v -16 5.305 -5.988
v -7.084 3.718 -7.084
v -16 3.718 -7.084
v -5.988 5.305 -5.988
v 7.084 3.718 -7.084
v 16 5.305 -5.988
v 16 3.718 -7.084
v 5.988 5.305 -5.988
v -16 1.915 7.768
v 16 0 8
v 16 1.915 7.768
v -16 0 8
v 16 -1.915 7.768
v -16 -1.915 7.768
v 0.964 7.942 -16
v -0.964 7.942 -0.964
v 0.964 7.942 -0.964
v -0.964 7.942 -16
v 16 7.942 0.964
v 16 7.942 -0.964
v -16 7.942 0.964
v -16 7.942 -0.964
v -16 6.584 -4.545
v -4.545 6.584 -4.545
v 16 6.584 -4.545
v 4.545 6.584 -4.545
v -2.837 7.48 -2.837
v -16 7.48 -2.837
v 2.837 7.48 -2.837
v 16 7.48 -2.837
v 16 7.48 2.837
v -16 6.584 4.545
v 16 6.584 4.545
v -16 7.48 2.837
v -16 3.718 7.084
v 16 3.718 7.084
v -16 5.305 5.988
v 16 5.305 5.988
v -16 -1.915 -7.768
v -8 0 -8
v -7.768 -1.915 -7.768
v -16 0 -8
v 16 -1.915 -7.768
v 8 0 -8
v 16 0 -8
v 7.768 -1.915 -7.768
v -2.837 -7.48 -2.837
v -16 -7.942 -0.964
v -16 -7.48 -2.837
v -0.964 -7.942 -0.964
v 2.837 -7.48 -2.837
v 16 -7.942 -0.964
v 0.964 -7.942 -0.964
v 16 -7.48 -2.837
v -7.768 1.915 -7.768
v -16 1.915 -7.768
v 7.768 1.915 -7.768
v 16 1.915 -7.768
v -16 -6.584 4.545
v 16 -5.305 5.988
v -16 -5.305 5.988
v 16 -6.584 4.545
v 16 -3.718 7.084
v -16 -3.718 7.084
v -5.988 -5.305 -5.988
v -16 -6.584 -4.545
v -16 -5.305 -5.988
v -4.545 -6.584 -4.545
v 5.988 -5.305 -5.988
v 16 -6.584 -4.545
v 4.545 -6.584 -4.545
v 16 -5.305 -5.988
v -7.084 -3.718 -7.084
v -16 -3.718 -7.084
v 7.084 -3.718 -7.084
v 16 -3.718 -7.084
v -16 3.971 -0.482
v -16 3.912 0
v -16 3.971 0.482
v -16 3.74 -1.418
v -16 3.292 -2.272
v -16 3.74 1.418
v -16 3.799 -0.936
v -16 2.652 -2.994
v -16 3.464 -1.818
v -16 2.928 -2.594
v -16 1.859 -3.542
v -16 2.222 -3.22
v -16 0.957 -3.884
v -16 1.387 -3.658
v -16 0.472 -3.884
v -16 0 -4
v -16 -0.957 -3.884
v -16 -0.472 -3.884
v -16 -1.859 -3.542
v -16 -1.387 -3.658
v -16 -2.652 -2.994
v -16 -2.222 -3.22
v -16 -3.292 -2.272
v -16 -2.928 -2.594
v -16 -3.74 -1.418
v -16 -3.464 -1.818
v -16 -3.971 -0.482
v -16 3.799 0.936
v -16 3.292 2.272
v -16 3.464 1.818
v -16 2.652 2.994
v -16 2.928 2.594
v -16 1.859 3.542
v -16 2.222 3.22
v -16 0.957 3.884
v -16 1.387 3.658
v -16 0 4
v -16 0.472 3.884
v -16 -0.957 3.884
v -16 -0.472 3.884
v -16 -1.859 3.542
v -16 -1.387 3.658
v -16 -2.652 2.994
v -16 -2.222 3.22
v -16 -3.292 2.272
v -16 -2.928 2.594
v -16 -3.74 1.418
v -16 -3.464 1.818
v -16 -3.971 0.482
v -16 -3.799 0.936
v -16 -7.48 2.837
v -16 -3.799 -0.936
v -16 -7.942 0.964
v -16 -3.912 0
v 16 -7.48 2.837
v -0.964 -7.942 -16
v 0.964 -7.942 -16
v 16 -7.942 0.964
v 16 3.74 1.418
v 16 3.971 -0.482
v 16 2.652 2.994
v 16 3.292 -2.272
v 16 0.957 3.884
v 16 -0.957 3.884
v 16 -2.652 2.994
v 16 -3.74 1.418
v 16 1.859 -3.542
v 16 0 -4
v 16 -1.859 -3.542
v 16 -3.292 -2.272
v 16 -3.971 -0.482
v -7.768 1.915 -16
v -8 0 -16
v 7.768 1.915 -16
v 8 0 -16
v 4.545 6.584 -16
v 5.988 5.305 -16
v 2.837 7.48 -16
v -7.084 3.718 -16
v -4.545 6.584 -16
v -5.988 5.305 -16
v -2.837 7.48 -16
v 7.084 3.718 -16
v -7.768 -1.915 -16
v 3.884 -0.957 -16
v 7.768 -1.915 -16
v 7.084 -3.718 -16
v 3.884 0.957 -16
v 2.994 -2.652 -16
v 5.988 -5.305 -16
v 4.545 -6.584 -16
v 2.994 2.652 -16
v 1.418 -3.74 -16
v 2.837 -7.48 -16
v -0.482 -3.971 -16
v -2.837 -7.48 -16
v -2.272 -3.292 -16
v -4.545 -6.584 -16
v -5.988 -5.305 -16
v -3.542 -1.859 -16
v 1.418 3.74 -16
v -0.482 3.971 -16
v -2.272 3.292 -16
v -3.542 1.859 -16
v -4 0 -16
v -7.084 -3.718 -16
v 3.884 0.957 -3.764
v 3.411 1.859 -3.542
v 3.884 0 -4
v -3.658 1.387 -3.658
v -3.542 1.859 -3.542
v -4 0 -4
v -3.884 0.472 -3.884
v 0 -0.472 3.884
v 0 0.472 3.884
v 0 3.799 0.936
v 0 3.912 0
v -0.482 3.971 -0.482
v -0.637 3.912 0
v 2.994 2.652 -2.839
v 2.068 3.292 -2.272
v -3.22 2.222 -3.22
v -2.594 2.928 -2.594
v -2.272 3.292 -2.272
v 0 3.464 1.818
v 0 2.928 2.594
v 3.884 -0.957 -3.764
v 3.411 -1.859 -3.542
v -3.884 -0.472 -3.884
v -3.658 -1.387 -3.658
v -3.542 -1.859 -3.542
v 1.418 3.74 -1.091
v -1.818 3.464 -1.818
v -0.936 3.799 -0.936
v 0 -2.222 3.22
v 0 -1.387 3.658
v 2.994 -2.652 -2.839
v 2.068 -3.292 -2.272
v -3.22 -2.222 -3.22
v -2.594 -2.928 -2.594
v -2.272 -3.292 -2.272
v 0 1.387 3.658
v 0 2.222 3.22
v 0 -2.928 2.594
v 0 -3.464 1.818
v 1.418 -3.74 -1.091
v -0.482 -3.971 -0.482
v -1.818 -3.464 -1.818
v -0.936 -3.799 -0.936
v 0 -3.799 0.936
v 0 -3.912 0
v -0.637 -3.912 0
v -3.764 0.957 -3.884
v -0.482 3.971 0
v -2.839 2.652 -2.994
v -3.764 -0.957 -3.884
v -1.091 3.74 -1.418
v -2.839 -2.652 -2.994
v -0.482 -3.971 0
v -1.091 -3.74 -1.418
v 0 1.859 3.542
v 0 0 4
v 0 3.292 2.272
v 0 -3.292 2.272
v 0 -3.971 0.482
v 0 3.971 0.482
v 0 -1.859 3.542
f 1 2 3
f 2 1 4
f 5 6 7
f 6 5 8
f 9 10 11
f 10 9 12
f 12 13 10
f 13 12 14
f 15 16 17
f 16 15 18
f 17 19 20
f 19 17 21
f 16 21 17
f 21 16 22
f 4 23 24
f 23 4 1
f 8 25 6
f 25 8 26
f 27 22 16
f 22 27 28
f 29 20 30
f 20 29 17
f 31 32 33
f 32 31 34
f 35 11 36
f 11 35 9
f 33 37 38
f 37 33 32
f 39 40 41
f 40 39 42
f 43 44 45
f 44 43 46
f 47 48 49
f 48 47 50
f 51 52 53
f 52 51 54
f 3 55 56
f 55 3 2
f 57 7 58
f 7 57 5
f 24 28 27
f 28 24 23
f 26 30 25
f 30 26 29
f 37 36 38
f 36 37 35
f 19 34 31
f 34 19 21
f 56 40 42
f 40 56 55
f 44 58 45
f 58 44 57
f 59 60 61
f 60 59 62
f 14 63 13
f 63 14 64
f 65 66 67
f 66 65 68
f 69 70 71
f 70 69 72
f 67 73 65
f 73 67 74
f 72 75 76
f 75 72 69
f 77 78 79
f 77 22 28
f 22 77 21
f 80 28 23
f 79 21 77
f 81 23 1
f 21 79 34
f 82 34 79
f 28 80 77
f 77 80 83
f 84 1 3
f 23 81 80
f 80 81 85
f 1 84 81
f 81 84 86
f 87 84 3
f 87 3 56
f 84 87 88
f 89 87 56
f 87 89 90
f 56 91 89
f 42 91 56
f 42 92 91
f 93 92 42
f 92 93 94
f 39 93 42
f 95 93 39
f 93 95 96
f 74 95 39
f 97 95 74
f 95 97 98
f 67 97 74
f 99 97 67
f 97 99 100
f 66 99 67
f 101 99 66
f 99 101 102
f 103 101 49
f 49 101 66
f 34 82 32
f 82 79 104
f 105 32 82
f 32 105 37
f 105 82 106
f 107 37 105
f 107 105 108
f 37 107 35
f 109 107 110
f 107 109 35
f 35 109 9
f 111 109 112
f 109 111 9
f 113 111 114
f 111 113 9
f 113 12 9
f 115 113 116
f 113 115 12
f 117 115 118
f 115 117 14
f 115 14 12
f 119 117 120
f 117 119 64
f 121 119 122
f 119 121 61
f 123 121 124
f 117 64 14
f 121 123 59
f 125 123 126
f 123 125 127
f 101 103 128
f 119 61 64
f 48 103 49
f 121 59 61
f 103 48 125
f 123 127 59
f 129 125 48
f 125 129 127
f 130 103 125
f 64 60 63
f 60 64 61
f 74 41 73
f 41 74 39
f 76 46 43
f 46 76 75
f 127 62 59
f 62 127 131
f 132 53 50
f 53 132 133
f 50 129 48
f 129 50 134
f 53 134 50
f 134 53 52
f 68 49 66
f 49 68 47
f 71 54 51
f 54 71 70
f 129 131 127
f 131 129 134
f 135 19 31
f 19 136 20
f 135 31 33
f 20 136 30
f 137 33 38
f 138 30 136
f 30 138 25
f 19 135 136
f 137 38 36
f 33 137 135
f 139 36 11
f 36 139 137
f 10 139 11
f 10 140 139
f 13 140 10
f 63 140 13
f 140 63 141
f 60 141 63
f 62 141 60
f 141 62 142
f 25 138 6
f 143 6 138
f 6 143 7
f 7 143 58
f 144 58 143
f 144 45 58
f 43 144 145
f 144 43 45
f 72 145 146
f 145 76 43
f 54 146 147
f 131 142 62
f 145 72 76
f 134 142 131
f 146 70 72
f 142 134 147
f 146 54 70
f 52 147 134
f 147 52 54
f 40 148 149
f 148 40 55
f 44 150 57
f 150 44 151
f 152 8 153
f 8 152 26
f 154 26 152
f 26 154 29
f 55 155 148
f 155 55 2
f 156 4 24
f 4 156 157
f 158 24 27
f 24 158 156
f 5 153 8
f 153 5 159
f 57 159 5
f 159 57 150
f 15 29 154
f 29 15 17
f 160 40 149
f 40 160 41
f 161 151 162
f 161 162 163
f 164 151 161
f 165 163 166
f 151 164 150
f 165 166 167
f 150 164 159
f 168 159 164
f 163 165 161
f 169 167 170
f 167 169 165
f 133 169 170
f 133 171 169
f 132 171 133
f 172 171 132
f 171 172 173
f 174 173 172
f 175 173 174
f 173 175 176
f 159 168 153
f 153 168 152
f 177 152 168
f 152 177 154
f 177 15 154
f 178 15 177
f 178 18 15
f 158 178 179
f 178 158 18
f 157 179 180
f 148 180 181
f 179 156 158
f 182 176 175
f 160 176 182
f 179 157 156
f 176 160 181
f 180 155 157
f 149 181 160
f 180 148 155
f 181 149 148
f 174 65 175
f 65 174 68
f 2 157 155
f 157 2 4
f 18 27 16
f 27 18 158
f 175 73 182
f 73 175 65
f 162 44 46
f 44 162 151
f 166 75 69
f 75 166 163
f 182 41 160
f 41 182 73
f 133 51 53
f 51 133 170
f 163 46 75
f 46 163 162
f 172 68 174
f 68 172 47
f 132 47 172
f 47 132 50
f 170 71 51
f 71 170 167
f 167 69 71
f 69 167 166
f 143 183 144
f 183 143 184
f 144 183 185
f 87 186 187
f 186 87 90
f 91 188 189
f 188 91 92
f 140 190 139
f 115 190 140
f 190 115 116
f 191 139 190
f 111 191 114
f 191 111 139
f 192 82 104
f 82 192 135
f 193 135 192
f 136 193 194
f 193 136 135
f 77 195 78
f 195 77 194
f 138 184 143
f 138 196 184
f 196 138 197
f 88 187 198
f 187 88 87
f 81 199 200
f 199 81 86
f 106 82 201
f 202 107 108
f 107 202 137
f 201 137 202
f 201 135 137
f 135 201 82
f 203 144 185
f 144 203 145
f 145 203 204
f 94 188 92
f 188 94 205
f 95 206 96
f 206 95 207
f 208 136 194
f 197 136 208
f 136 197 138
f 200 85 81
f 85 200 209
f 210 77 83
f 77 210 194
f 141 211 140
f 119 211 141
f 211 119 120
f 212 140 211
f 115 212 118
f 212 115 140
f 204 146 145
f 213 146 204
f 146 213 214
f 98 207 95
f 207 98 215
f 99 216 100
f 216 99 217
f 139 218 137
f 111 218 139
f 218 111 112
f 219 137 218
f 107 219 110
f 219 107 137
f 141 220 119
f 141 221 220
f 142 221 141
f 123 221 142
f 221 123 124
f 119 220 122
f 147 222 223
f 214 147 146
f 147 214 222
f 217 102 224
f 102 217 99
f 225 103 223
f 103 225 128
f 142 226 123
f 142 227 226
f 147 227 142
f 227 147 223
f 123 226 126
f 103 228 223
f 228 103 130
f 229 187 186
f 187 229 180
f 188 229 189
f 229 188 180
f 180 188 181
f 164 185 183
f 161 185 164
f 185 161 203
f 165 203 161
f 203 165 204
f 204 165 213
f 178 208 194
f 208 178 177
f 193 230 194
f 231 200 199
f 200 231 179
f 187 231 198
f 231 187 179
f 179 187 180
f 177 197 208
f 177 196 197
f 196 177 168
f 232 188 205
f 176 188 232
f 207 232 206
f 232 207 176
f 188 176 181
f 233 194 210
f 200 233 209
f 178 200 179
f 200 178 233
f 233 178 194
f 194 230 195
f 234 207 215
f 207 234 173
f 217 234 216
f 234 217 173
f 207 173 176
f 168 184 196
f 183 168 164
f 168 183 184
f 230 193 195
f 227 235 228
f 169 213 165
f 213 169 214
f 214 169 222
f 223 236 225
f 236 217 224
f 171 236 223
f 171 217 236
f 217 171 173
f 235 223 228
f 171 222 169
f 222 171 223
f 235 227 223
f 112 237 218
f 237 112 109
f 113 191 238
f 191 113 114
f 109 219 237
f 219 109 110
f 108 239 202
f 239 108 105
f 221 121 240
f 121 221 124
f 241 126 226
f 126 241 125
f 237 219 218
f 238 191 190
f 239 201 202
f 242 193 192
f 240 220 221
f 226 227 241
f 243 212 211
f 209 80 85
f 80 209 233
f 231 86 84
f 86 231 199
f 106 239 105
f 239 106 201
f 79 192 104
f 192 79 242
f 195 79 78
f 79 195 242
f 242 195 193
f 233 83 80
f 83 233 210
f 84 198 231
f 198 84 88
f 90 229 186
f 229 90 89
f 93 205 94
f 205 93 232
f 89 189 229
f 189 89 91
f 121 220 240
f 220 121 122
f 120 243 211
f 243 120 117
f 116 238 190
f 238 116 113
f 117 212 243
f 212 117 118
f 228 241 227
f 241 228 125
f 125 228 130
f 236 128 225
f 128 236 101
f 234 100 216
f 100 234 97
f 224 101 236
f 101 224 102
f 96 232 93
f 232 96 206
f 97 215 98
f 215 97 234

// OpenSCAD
// Generated by SolidPython 1.0.4 on 2020-12-03 04:40:22


difference(){
	rotate(a = [90, 90, 90]) {
		union() {
			translate(v = [0, 0, -8.0000000000]) {
				difference() {
					cylinder(center = true, h = 16, r = 8);
				}
			}
			rotate(a = [0, 0, 0]) {
				translate(v = [0, 0, 16]) {
					translate(v = [0, 0, -8.0000000000]) {
						difference() {
							cylinder(center = true, h = 16, r = 8);
						}
					}
				}
			}
			rotate(a = [0, 90, 0]) {
				translate(v = [0, 0, 16]) {
					translate(v = [0, 0, -8.0000000000]) {
						difference() {
							cylinder(center = true, h = 16, r = 8);
						}
					}
				}
			}
			rotate(a = [0, 180, 0]) {
				translate(v = [0, 0, 16]) {
					translate(v = [0, 0, -8.0000000000]) {
						difference() {
							cylinder(center = true, h = 16, r = 8);
						}
					}
				}
			}
		}
	}
	/* Holes Below*/
	rotate(a = [90, 90, 90]){
		union(){
			translate(v = [0, 0, -8.0000000000]){
				union(){
					cylinder(center = true, h = 16, r = 4);
				}
			}
			rotate(a = [0, 0, 0]){
				translate(v = [0, 0, 16]){
					translate(v = [0, 0, -8.0000000000]){
						union(){
							cylinder(center = true, h = 16, r = 4);
						}
					}
				}
			}
			rotate(a = [0, 90, 0]){
				translate(v = [0, 0, 16]){
					translate(v = [0, 0, -8.0000000000]){
						union(){
							cylinder(center = true, h = 16, r = 4);
						}
					}
				}
			}
			rotate(a = [0, 180, 0]){
				translate(v = [0, 0, 16]){
					translate(v = [0, 0, -8.0000000000]){
						union(){
							cylinder(center = true, h = 16, r = 4);
						}
					}
				}
			}
		}
	} /* End Holes */ 
}
/***********************************************
*********      SolidPython code:      **********
************************************************
 
from solid import *
from solid.utils import *
import toml
import os


def create_junction(isCross, tube_diameter, wall_thickness, length):
    '''
    creates a T or + junction for putting sequences of nozzles 
    in parallel or general plumbing
    '''

    pipe = cylinder(tube_diameter, length, center=True)
    hull = cylinder(tube_diameter, length, center=True)
    # cut holes
    pipe = pipe - hole()(cylinder(tube_diameter-wall_thickness, length, center=True))
    hull = hull - hole()(cylinder(tube_diameter-wall_thickness, length, center=True))

    # center about z axis
    pipe = down(length/2)(pipe)  # center about z axii
    hull = down(length/2)(hull)  # center about z axii

    # TODO: cut holes

    # offset pipe for junctions
    pipe = translate([0, 0, length])(pipe)

    if isCross:
        for i in range(3):
            hull += rotate([0,i*90,0])(pipe)
    else:
        for i in range(4):
            hull += rotate([0,i*90,0])(pipe)

    # TODO: ensure rotations are about the xy plane since nozzles
    #       tap along z axis and this is sensible
    hull = rotate([90,90,90])(hull)
    return hull


if __name__ == "__main__":
    # read in configuration
    config = toml.load("configuration.toml")
    filename = "junction"
    # write out the solution
    junction = create_junction(**config)
    scad_render_to_file(junction, filename + ".scad")
    # render with OpenSCAD
    print("Openscad is now rendering the solution..")
    os.system("start ../OpenSCAD/openscad.exe -o " +
              filename + ".stl " + filename + ".scad")
 
 
************************************************/
